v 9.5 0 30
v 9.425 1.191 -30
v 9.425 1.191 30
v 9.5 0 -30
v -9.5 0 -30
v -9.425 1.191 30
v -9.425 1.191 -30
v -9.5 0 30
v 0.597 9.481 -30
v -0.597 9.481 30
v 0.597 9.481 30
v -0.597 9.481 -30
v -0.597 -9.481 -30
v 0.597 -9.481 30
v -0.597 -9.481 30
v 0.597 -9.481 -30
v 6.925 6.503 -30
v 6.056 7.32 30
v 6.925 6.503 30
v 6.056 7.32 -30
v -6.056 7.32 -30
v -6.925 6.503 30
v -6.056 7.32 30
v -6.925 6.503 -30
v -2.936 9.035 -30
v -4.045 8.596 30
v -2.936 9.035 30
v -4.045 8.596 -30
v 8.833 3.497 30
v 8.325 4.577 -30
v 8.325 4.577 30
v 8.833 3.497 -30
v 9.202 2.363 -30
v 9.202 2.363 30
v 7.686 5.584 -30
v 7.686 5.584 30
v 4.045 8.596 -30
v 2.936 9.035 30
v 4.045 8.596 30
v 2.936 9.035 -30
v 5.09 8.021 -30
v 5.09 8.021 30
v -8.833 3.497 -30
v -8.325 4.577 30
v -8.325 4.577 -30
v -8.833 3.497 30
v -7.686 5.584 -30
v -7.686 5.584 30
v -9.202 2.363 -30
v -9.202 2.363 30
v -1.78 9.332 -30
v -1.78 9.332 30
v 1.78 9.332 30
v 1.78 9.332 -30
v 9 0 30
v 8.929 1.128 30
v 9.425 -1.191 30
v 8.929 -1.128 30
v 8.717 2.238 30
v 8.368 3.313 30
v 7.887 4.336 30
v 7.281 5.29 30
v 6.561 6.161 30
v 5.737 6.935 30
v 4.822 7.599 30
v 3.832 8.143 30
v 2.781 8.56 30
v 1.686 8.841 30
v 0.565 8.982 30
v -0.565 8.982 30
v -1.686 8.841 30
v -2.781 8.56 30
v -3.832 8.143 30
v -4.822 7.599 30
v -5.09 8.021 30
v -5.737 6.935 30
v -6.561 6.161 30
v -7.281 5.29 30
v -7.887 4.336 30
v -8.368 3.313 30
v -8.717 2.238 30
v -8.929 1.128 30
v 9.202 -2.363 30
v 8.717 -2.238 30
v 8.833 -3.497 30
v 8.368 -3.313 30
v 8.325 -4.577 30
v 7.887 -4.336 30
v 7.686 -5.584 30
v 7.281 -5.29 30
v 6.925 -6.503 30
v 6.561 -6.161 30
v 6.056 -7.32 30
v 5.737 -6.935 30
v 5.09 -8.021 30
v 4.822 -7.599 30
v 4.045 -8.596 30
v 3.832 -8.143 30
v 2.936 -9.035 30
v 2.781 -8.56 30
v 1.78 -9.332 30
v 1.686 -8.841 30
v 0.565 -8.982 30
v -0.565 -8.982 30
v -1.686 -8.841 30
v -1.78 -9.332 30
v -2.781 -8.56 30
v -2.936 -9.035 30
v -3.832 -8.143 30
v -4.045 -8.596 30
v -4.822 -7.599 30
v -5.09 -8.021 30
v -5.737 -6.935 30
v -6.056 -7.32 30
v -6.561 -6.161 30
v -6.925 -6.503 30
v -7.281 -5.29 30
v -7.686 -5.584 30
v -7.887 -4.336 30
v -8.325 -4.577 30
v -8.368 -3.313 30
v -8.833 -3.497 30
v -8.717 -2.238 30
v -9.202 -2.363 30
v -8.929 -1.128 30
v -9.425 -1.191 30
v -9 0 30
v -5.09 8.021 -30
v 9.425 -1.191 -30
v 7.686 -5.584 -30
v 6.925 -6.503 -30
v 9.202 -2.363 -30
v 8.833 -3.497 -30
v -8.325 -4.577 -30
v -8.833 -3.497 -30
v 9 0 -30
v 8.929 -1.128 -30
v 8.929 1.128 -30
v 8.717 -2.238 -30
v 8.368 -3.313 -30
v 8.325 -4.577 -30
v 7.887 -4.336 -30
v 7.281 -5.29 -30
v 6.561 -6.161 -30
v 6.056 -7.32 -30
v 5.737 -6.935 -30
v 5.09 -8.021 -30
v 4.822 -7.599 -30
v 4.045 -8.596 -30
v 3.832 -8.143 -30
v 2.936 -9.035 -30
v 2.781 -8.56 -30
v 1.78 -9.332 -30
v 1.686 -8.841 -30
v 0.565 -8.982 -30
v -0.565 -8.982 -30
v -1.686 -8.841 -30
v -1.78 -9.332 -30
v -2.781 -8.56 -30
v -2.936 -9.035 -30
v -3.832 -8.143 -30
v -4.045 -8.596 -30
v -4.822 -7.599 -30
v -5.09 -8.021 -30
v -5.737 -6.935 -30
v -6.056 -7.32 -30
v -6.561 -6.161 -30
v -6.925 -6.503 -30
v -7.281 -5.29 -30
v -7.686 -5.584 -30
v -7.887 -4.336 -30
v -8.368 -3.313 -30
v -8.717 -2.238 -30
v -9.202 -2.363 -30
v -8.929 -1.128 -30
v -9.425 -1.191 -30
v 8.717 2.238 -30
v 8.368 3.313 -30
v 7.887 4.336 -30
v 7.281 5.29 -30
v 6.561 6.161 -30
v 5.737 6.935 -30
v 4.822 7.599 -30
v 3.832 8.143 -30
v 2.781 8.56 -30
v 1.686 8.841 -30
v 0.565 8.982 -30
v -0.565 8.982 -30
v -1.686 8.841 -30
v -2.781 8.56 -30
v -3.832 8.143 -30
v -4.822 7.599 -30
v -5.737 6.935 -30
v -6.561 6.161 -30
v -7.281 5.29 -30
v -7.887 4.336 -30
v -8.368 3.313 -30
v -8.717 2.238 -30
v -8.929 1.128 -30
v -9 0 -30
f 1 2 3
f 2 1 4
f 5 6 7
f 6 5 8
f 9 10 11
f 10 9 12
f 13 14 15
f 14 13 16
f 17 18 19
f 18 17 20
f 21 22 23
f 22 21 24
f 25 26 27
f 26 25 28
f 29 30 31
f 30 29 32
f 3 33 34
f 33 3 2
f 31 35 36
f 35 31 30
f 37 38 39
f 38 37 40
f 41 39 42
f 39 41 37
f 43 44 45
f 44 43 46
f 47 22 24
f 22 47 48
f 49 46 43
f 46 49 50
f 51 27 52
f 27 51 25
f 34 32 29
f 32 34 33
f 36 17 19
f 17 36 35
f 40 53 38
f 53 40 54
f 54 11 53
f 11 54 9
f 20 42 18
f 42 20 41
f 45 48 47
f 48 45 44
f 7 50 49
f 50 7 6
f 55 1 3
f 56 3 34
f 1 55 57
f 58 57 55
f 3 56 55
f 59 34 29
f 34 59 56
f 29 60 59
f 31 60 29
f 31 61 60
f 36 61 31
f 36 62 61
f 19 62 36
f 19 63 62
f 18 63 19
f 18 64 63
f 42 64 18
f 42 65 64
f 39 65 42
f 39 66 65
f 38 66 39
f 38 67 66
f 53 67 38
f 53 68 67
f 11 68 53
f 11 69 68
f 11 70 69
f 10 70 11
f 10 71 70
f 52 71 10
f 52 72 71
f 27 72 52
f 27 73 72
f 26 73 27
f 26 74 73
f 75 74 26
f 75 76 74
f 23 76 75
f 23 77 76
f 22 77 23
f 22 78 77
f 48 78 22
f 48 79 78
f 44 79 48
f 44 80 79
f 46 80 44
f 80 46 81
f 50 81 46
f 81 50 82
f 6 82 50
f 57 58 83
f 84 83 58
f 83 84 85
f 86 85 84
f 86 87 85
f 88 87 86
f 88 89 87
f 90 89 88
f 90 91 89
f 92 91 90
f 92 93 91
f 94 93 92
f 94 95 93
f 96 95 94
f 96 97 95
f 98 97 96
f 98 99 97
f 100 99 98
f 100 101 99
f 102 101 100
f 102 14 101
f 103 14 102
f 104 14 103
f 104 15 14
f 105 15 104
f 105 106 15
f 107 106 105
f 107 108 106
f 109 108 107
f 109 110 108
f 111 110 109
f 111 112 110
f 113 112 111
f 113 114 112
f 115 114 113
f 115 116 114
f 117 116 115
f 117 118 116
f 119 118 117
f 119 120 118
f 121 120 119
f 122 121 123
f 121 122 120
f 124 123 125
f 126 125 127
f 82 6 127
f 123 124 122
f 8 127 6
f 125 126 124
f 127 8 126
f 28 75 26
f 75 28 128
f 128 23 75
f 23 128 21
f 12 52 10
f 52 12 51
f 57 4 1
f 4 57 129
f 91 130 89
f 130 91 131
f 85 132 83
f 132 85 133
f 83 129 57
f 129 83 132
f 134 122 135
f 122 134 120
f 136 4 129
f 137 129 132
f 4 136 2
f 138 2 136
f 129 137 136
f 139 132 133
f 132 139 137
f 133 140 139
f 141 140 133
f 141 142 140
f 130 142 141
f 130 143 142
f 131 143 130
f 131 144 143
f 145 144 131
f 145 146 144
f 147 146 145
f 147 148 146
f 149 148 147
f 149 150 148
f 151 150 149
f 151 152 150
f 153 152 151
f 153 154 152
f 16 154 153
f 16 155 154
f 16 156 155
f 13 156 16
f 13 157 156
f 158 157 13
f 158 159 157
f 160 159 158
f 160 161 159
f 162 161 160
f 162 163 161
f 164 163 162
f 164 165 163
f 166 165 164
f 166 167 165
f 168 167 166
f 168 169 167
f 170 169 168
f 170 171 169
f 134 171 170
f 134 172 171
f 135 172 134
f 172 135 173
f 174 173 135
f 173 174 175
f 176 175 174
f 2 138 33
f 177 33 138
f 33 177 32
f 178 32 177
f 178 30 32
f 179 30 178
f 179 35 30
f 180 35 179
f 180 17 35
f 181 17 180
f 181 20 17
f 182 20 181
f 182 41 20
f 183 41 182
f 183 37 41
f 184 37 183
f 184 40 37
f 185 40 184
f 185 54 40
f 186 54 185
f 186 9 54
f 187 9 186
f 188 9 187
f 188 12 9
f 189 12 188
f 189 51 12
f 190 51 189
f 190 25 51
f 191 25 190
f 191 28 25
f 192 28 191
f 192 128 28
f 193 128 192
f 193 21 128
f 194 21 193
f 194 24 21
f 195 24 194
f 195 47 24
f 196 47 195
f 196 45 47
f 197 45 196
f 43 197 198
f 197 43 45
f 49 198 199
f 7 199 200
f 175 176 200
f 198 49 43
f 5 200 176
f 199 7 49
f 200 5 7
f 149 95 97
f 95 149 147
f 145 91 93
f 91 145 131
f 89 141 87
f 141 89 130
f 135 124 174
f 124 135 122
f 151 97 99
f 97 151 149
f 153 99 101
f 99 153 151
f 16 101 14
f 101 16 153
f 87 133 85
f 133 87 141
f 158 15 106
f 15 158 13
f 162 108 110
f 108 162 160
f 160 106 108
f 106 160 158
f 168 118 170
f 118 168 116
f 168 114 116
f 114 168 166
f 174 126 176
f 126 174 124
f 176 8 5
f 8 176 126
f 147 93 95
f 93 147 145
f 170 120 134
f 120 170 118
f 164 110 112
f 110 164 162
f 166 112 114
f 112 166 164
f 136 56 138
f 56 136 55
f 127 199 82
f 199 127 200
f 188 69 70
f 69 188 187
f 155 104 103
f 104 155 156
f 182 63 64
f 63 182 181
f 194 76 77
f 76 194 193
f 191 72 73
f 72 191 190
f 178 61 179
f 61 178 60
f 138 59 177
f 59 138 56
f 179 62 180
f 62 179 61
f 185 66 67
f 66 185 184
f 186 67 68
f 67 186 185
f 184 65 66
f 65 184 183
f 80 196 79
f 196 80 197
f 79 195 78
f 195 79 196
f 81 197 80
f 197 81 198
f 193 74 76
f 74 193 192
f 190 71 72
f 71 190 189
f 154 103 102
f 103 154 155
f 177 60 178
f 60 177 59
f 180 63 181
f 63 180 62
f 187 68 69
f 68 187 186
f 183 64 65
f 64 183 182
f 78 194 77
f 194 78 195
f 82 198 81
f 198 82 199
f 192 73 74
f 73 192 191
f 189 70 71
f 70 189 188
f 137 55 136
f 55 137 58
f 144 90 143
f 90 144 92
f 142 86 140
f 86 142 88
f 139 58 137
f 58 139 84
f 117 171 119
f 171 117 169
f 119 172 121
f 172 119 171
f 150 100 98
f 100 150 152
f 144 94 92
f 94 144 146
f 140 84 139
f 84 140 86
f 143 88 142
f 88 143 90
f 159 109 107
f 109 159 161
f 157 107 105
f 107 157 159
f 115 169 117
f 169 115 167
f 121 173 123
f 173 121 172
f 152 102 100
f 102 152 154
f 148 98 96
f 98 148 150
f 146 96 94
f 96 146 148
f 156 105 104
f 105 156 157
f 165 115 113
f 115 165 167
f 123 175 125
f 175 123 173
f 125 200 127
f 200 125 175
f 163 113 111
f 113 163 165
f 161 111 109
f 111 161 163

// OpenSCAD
$fn = 50;


difference() {
	union() {
		translate(v = [0, 0, -30.0000000000]) {
			cylinder(h = 60, r = 9.5000000000);
		}
	}
	union() {
		translate(v = [0, 0, -100.0000000000]) {
			cylinder(h = 200, r = 9);
		}
	}
}
